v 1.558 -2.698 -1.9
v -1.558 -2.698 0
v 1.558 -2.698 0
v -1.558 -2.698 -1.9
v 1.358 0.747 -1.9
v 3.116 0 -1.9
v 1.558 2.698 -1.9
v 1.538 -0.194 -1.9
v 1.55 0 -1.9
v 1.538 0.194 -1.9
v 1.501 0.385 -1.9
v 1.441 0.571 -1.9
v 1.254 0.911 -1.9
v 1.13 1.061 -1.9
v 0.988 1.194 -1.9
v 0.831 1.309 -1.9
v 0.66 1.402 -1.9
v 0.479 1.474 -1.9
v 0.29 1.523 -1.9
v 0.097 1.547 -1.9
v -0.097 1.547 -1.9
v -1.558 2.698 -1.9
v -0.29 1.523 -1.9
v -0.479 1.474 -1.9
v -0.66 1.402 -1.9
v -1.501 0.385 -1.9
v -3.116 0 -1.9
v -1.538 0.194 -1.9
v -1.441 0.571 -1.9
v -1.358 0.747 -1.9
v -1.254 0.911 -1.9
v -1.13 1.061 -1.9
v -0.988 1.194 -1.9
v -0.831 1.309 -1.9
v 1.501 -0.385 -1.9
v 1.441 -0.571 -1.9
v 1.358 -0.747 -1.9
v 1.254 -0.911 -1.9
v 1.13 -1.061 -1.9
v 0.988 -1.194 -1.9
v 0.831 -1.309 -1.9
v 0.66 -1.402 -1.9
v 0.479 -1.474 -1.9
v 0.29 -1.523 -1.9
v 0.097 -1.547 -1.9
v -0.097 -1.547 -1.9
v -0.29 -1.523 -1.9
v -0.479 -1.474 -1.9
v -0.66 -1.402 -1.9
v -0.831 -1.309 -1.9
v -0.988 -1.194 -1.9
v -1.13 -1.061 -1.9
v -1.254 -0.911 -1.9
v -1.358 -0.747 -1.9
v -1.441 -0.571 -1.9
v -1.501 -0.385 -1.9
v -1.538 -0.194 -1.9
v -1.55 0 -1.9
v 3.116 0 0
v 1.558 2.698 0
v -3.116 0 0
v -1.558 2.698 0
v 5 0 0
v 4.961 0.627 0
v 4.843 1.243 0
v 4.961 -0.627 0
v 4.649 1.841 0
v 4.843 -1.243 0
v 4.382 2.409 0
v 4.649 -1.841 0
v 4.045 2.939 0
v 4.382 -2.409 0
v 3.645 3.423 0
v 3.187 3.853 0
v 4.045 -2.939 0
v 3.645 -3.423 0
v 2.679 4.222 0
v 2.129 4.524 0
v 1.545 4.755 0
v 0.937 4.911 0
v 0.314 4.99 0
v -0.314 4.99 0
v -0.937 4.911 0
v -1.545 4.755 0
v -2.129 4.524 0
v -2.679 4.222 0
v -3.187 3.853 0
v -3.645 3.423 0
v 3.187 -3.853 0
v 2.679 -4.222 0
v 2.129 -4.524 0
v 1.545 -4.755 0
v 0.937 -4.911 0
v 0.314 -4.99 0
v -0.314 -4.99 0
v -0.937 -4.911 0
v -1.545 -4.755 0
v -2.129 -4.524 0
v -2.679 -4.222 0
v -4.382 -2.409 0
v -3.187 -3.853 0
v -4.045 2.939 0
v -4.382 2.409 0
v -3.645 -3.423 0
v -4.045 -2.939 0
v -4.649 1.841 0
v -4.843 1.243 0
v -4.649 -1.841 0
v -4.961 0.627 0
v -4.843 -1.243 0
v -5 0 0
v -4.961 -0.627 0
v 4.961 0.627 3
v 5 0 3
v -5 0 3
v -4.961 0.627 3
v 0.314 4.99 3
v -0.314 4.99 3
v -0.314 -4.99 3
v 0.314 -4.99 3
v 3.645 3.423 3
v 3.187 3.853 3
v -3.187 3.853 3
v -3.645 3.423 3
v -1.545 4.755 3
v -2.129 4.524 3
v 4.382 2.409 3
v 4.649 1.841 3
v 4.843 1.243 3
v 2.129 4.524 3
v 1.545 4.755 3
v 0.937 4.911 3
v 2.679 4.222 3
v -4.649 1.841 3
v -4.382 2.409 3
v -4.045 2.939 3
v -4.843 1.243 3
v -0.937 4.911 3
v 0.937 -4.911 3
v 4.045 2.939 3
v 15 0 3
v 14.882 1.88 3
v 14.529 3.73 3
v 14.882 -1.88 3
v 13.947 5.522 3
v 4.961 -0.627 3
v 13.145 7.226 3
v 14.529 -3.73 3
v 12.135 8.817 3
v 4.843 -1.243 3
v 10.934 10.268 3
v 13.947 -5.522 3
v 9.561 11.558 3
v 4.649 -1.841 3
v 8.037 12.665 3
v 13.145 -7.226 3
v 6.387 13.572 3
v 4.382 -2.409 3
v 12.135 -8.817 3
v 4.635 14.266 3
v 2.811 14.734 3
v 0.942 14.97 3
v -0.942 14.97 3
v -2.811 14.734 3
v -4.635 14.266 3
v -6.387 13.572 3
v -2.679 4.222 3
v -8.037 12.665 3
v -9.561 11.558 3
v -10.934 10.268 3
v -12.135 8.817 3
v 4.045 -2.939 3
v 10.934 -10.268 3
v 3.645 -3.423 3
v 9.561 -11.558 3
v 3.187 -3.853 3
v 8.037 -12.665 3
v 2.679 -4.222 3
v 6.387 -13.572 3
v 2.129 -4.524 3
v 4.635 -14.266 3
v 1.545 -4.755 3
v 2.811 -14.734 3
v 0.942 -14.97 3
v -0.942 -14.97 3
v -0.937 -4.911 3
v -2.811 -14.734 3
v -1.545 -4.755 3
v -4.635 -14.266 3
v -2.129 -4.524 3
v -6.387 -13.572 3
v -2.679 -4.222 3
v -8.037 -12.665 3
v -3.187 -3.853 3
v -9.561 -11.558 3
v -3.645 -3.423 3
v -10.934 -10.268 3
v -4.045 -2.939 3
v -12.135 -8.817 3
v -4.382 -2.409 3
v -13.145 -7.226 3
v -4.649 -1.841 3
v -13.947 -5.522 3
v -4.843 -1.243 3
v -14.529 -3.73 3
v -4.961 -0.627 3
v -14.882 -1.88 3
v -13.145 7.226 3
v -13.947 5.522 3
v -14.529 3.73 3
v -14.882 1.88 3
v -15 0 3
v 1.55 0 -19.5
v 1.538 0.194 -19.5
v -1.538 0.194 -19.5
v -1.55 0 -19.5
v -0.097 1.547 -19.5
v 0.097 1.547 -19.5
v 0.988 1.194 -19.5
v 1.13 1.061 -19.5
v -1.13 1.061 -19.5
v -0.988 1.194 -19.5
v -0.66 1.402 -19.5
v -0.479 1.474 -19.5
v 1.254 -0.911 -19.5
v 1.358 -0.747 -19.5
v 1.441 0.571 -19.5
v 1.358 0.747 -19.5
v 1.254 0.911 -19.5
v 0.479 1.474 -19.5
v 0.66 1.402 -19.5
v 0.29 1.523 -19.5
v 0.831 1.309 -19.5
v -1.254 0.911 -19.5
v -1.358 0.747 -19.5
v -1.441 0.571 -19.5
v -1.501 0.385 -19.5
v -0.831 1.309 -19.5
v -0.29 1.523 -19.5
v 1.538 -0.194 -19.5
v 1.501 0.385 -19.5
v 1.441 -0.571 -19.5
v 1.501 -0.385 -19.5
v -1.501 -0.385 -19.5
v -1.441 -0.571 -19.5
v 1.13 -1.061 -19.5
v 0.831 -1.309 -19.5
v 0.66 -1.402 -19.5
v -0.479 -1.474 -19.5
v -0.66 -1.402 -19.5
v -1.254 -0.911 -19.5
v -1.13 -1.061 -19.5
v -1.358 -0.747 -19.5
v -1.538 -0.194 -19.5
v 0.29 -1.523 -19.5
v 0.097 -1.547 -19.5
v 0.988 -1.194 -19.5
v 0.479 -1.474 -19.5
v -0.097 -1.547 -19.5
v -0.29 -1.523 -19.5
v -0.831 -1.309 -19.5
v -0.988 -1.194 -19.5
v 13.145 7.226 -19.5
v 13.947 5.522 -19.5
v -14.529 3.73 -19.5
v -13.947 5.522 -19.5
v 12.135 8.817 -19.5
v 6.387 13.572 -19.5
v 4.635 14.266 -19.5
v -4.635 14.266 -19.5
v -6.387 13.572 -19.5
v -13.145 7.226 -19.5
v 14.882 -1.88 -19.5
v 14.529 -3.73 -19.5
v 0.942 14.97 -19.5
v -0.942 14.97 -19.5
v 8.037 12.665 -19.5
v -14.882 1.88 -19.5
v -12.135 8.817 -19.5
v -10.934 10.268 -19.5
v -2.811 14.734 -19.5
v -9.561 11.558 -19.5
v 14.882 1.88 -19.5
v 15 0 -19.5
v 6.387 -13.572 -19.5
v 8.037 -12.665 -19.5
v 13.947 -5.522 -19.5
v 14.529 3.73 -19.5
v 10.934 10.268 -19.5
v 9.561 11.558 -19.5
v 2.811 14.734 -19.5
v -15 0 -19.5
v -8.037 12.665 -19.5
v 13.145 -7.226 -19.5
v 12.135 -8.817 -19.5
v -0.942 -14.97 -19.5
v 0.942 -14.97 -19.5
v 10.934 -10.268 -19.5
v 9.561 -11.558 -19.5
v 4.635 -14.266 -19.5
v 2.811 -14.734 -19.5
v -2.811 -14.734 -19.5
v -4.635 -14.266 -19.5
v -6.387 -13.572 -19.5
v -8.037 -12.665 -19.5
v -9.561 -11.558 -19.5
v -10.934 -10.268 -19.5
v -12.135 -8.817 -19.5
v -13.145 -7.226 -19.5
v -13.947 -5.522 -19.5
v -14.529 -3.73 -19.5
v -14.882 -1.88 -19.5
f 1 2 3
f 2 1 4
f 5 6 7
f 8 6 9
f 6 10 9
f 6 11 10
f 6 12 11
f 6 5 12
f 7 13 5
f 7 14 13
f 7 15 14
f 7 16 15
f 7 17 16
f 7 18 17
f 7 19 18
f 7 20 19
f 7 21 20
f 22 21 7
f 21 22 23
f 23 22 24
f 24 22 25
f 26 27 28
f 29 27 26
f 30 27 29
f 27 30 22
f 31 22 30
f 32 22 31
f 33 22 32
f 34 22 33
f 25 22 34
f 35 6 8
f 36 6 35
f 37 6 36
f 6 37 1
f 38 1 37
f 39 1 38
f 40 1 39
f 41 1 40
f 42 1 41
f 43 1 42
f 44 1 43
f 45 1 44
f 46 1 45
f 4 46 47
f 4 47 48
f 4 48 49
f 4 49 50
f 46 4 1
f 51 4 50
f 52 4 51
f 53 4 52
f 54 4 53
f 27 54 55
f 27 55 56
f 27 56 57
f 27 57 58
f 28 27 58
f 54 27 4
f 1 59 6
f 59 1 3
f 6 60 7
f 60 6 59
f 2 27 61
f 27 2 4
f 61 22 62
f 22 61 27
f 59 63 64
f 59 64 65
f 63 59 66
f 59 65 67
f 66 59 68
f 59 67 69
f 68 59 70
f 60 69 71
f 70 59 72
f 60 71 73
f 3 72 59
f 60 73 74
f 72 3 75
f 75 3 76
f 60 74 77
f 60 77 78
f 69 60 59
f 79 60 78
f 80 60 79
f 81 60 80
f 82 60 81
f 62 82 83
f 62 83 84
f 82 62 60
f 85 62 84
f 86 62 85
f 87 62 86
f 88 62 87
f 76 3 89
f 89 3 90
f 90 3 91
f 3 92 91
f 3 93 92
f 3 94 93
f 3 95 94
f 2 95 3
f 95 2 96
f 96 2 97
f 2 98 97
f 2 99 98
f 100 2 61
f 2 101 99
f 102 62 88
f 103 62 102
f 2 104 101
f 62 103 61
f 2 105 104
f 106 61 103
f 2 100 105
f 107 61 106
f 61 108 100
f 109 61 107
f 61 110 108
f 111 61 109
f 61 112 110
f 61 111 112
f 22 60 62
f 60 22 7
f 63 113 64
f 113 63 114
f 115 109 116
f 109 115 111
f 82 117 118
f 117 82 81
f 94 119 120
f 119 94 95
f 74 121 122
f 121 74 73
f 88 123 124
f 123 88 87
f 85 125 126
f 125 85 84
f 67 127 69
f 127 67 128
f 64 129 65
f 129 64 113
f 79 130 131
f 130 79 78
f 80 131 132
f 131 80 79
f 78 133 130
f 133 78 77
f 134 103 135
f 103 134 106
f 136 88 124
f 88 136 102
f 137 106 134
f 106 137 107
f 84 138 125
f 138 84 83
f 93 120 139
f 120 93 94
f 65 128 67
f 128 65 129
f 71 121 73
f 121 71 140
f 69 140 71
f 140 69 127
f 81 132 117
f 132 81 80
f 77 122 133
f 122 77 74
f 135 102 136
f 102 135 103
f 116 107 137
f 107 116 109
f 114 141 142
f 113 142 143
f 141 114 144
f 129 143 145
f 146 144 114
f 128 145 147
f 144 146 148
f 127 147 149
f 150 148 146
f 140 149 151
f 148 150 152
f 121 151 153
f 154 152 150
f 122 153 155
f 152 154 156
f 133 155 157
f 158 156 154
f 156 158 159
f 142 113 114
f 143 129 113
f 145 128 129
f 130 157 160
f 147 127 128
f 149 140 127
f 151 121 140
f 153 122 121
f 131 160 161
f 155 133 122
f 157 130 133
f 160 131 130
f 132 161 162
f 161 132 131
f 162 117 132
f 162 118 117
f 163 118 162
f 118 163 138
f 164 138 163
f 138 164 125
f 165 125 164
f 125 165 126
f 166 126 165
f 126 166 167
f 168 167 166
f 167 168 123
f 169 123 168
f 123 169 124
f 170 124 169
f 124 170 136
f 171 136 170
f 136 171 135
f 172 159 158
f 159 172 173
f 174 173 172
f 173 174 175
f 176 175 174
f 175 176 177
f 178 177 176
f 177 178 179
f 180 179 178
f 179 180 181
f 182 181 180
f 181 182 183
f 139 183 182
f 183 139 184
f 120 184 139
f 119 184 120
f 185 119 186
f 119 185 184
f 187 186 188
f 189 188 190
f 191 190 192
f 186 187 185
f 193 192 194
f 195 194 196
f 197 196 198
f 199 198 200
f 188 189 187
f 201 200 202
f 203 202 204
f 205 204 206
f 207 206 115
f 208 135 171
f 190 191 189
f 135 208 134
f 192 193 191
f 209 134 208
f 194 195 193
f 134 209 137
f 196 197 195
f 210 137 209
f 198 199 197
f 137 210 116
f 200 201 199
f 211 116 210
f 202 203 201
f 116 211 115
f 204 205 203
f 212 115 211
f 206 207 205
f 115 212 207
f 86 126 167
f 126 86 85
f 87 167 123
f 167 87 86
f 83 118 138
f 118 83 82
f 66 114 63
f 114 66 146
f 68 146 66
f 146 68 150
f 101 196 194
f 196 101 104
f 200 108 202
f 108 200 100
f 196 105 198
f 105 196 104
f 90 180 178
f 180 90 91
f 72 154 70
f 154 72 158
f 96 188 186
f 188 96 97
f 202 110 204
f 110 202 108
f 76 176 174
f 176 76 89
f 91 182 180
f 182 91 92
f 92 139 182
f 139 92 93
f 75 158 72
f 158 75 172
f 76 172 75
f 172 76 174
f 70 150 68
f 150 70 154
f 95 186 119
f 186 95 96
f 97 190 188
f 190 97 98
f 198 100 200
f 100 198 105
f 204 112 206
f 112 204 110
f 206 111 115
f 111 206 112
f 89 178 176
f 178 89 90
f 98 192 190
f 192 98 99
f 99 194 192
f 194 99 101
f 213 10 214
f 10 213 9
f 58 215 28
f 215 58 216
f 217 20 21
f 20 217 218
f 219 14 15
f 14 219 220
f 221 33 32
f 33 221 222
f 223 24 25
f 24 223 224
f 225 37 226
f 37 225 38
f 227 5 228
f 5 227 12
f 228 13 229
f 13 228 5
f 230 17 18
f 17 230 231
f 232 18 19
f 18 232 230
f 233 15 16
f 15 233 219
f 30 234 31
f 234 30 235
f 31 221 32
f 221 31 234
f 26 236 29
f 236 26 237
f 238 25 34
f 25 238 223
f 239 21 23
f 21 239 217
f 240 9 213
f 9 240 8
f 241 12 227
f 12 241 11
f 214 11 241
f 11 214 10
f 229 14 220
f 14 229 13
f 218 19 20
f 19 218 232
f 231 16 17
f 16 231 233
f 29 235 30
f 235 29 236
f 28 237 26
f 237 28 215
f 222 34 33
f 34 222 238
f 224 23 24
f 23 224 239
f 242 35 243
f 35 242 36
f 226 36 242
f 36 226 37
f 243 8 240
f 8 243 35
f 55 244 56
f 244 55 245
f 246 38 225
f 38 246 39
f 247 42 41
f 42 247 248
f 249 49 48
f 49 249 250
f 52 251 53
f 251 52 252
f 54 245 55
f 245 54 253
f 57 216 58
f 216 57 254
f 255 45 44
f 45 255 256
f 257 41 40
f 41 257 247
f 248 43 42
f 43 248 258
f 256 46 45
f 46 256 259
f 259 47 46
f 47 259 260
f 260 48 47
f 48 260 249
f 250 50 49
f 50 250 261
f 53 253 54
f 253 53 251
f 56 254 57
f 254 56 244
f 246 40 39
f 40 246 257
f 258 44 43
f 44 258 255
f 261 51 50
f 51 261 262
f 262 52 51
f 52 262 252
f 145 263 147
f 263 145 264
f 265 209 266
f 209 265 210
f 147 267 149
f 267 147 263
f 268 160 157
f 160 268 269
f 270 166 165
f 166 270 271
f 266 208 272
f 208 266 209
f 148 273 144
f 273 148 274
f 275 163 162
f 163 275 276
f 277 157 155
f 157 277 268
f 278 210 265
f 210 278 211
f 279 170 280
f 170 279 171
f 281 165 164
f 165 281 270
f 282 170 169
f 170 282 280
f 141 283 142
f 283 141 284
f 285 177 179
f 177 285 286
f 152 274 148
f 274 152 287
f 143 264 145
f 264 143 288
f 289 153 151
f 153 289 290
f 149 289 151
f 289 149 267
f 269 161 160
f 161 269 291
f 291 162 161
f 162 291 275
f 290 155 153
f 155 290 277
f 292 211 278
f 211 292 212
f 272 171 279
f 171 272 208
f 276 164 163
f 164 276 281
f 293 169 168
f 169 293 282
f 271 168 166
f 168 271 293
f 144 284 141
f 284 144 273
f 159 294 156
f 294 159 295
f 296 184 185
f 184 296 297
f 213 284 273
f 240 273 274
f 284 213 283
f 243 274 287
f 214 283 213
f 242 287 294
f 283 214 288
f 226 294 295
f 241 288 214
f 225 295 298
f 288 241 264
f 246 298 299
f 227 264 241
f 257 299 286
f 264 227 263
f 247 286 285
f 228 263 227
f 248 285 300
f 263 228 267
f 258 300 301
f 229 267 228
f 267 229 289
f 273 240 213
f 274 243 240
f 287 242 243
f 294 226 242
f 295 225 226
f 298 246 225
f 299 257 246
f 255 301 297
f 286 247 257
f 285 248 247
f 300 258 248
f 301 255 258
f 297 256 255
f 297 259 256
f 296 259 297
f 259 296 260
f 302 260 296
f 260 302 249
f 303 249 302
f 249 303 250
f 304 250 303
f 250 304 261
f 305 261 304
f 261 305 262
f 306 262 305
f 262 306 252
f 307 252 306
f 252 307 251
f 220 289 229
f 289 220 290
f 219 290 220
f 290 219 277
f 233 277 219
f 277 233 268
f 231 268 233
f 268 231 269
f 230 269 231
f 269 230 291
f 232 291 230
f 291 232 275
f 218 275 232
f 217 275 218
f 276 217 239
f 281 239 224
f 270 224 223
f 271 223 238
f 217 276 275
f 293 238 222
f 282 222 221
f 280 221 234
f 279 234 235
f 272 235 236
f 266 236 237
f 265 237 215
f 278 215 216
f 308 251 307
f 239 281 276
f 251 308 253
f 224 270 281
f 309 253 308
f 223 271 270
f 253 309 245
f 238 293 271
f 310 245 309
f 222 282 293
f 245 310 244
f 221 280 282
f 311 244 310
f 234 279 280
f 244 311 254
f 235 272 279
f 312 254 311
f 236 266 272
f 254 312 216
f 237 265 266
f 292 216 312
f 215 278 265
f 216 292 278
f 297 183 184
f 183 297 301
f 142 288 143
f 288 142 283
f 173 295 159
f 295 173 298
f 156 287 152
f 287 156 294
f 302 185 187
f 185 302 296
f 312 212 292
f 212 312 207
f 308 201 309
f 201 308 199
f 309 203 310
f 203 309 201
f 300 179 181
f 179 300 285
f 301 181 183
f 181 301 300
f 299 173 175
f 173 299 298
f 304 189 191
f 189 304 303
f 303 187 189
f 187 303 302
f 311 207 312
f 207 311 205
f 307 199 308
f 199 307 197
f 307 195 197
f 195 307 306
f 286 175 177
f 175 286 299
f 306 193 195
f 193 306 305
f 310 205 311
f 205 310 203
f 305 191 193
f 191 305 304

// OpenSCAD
$fn = 50;

difference() {
	union() {
		translate(v = [0, 0, -19.5]) {
			cylinder(h = 22.5, r = 15.0);
		}
	}
	union() {
		translate(v = [0, 0, 0]) {
			rotate(a = [0, 0, 0]) {
				difference() {
					union() {
						translate(v = [0, 0, -1.9]) {
							linear_extrude(height = 1.9) {
								polygon(points = [[3.1158, 0.0], [1.5579000000000005, 2.698361953111554], [-1.5578999999999994, 2.6983619531115544], [-3.1158, 3.815754496783323e-16], [-1.5579000000000014, -2.6983619531115535], [1.557899999999998, -2.6983619531115552]]);
							}
						}
					}
					union();
				}
			}
		}
		#cylinder(h = 3, r = 5.0);
		#translate(v = [0, 0, -100.0]) {
			cylinder(h = 200, r = 1.55);
		}
	}
}
